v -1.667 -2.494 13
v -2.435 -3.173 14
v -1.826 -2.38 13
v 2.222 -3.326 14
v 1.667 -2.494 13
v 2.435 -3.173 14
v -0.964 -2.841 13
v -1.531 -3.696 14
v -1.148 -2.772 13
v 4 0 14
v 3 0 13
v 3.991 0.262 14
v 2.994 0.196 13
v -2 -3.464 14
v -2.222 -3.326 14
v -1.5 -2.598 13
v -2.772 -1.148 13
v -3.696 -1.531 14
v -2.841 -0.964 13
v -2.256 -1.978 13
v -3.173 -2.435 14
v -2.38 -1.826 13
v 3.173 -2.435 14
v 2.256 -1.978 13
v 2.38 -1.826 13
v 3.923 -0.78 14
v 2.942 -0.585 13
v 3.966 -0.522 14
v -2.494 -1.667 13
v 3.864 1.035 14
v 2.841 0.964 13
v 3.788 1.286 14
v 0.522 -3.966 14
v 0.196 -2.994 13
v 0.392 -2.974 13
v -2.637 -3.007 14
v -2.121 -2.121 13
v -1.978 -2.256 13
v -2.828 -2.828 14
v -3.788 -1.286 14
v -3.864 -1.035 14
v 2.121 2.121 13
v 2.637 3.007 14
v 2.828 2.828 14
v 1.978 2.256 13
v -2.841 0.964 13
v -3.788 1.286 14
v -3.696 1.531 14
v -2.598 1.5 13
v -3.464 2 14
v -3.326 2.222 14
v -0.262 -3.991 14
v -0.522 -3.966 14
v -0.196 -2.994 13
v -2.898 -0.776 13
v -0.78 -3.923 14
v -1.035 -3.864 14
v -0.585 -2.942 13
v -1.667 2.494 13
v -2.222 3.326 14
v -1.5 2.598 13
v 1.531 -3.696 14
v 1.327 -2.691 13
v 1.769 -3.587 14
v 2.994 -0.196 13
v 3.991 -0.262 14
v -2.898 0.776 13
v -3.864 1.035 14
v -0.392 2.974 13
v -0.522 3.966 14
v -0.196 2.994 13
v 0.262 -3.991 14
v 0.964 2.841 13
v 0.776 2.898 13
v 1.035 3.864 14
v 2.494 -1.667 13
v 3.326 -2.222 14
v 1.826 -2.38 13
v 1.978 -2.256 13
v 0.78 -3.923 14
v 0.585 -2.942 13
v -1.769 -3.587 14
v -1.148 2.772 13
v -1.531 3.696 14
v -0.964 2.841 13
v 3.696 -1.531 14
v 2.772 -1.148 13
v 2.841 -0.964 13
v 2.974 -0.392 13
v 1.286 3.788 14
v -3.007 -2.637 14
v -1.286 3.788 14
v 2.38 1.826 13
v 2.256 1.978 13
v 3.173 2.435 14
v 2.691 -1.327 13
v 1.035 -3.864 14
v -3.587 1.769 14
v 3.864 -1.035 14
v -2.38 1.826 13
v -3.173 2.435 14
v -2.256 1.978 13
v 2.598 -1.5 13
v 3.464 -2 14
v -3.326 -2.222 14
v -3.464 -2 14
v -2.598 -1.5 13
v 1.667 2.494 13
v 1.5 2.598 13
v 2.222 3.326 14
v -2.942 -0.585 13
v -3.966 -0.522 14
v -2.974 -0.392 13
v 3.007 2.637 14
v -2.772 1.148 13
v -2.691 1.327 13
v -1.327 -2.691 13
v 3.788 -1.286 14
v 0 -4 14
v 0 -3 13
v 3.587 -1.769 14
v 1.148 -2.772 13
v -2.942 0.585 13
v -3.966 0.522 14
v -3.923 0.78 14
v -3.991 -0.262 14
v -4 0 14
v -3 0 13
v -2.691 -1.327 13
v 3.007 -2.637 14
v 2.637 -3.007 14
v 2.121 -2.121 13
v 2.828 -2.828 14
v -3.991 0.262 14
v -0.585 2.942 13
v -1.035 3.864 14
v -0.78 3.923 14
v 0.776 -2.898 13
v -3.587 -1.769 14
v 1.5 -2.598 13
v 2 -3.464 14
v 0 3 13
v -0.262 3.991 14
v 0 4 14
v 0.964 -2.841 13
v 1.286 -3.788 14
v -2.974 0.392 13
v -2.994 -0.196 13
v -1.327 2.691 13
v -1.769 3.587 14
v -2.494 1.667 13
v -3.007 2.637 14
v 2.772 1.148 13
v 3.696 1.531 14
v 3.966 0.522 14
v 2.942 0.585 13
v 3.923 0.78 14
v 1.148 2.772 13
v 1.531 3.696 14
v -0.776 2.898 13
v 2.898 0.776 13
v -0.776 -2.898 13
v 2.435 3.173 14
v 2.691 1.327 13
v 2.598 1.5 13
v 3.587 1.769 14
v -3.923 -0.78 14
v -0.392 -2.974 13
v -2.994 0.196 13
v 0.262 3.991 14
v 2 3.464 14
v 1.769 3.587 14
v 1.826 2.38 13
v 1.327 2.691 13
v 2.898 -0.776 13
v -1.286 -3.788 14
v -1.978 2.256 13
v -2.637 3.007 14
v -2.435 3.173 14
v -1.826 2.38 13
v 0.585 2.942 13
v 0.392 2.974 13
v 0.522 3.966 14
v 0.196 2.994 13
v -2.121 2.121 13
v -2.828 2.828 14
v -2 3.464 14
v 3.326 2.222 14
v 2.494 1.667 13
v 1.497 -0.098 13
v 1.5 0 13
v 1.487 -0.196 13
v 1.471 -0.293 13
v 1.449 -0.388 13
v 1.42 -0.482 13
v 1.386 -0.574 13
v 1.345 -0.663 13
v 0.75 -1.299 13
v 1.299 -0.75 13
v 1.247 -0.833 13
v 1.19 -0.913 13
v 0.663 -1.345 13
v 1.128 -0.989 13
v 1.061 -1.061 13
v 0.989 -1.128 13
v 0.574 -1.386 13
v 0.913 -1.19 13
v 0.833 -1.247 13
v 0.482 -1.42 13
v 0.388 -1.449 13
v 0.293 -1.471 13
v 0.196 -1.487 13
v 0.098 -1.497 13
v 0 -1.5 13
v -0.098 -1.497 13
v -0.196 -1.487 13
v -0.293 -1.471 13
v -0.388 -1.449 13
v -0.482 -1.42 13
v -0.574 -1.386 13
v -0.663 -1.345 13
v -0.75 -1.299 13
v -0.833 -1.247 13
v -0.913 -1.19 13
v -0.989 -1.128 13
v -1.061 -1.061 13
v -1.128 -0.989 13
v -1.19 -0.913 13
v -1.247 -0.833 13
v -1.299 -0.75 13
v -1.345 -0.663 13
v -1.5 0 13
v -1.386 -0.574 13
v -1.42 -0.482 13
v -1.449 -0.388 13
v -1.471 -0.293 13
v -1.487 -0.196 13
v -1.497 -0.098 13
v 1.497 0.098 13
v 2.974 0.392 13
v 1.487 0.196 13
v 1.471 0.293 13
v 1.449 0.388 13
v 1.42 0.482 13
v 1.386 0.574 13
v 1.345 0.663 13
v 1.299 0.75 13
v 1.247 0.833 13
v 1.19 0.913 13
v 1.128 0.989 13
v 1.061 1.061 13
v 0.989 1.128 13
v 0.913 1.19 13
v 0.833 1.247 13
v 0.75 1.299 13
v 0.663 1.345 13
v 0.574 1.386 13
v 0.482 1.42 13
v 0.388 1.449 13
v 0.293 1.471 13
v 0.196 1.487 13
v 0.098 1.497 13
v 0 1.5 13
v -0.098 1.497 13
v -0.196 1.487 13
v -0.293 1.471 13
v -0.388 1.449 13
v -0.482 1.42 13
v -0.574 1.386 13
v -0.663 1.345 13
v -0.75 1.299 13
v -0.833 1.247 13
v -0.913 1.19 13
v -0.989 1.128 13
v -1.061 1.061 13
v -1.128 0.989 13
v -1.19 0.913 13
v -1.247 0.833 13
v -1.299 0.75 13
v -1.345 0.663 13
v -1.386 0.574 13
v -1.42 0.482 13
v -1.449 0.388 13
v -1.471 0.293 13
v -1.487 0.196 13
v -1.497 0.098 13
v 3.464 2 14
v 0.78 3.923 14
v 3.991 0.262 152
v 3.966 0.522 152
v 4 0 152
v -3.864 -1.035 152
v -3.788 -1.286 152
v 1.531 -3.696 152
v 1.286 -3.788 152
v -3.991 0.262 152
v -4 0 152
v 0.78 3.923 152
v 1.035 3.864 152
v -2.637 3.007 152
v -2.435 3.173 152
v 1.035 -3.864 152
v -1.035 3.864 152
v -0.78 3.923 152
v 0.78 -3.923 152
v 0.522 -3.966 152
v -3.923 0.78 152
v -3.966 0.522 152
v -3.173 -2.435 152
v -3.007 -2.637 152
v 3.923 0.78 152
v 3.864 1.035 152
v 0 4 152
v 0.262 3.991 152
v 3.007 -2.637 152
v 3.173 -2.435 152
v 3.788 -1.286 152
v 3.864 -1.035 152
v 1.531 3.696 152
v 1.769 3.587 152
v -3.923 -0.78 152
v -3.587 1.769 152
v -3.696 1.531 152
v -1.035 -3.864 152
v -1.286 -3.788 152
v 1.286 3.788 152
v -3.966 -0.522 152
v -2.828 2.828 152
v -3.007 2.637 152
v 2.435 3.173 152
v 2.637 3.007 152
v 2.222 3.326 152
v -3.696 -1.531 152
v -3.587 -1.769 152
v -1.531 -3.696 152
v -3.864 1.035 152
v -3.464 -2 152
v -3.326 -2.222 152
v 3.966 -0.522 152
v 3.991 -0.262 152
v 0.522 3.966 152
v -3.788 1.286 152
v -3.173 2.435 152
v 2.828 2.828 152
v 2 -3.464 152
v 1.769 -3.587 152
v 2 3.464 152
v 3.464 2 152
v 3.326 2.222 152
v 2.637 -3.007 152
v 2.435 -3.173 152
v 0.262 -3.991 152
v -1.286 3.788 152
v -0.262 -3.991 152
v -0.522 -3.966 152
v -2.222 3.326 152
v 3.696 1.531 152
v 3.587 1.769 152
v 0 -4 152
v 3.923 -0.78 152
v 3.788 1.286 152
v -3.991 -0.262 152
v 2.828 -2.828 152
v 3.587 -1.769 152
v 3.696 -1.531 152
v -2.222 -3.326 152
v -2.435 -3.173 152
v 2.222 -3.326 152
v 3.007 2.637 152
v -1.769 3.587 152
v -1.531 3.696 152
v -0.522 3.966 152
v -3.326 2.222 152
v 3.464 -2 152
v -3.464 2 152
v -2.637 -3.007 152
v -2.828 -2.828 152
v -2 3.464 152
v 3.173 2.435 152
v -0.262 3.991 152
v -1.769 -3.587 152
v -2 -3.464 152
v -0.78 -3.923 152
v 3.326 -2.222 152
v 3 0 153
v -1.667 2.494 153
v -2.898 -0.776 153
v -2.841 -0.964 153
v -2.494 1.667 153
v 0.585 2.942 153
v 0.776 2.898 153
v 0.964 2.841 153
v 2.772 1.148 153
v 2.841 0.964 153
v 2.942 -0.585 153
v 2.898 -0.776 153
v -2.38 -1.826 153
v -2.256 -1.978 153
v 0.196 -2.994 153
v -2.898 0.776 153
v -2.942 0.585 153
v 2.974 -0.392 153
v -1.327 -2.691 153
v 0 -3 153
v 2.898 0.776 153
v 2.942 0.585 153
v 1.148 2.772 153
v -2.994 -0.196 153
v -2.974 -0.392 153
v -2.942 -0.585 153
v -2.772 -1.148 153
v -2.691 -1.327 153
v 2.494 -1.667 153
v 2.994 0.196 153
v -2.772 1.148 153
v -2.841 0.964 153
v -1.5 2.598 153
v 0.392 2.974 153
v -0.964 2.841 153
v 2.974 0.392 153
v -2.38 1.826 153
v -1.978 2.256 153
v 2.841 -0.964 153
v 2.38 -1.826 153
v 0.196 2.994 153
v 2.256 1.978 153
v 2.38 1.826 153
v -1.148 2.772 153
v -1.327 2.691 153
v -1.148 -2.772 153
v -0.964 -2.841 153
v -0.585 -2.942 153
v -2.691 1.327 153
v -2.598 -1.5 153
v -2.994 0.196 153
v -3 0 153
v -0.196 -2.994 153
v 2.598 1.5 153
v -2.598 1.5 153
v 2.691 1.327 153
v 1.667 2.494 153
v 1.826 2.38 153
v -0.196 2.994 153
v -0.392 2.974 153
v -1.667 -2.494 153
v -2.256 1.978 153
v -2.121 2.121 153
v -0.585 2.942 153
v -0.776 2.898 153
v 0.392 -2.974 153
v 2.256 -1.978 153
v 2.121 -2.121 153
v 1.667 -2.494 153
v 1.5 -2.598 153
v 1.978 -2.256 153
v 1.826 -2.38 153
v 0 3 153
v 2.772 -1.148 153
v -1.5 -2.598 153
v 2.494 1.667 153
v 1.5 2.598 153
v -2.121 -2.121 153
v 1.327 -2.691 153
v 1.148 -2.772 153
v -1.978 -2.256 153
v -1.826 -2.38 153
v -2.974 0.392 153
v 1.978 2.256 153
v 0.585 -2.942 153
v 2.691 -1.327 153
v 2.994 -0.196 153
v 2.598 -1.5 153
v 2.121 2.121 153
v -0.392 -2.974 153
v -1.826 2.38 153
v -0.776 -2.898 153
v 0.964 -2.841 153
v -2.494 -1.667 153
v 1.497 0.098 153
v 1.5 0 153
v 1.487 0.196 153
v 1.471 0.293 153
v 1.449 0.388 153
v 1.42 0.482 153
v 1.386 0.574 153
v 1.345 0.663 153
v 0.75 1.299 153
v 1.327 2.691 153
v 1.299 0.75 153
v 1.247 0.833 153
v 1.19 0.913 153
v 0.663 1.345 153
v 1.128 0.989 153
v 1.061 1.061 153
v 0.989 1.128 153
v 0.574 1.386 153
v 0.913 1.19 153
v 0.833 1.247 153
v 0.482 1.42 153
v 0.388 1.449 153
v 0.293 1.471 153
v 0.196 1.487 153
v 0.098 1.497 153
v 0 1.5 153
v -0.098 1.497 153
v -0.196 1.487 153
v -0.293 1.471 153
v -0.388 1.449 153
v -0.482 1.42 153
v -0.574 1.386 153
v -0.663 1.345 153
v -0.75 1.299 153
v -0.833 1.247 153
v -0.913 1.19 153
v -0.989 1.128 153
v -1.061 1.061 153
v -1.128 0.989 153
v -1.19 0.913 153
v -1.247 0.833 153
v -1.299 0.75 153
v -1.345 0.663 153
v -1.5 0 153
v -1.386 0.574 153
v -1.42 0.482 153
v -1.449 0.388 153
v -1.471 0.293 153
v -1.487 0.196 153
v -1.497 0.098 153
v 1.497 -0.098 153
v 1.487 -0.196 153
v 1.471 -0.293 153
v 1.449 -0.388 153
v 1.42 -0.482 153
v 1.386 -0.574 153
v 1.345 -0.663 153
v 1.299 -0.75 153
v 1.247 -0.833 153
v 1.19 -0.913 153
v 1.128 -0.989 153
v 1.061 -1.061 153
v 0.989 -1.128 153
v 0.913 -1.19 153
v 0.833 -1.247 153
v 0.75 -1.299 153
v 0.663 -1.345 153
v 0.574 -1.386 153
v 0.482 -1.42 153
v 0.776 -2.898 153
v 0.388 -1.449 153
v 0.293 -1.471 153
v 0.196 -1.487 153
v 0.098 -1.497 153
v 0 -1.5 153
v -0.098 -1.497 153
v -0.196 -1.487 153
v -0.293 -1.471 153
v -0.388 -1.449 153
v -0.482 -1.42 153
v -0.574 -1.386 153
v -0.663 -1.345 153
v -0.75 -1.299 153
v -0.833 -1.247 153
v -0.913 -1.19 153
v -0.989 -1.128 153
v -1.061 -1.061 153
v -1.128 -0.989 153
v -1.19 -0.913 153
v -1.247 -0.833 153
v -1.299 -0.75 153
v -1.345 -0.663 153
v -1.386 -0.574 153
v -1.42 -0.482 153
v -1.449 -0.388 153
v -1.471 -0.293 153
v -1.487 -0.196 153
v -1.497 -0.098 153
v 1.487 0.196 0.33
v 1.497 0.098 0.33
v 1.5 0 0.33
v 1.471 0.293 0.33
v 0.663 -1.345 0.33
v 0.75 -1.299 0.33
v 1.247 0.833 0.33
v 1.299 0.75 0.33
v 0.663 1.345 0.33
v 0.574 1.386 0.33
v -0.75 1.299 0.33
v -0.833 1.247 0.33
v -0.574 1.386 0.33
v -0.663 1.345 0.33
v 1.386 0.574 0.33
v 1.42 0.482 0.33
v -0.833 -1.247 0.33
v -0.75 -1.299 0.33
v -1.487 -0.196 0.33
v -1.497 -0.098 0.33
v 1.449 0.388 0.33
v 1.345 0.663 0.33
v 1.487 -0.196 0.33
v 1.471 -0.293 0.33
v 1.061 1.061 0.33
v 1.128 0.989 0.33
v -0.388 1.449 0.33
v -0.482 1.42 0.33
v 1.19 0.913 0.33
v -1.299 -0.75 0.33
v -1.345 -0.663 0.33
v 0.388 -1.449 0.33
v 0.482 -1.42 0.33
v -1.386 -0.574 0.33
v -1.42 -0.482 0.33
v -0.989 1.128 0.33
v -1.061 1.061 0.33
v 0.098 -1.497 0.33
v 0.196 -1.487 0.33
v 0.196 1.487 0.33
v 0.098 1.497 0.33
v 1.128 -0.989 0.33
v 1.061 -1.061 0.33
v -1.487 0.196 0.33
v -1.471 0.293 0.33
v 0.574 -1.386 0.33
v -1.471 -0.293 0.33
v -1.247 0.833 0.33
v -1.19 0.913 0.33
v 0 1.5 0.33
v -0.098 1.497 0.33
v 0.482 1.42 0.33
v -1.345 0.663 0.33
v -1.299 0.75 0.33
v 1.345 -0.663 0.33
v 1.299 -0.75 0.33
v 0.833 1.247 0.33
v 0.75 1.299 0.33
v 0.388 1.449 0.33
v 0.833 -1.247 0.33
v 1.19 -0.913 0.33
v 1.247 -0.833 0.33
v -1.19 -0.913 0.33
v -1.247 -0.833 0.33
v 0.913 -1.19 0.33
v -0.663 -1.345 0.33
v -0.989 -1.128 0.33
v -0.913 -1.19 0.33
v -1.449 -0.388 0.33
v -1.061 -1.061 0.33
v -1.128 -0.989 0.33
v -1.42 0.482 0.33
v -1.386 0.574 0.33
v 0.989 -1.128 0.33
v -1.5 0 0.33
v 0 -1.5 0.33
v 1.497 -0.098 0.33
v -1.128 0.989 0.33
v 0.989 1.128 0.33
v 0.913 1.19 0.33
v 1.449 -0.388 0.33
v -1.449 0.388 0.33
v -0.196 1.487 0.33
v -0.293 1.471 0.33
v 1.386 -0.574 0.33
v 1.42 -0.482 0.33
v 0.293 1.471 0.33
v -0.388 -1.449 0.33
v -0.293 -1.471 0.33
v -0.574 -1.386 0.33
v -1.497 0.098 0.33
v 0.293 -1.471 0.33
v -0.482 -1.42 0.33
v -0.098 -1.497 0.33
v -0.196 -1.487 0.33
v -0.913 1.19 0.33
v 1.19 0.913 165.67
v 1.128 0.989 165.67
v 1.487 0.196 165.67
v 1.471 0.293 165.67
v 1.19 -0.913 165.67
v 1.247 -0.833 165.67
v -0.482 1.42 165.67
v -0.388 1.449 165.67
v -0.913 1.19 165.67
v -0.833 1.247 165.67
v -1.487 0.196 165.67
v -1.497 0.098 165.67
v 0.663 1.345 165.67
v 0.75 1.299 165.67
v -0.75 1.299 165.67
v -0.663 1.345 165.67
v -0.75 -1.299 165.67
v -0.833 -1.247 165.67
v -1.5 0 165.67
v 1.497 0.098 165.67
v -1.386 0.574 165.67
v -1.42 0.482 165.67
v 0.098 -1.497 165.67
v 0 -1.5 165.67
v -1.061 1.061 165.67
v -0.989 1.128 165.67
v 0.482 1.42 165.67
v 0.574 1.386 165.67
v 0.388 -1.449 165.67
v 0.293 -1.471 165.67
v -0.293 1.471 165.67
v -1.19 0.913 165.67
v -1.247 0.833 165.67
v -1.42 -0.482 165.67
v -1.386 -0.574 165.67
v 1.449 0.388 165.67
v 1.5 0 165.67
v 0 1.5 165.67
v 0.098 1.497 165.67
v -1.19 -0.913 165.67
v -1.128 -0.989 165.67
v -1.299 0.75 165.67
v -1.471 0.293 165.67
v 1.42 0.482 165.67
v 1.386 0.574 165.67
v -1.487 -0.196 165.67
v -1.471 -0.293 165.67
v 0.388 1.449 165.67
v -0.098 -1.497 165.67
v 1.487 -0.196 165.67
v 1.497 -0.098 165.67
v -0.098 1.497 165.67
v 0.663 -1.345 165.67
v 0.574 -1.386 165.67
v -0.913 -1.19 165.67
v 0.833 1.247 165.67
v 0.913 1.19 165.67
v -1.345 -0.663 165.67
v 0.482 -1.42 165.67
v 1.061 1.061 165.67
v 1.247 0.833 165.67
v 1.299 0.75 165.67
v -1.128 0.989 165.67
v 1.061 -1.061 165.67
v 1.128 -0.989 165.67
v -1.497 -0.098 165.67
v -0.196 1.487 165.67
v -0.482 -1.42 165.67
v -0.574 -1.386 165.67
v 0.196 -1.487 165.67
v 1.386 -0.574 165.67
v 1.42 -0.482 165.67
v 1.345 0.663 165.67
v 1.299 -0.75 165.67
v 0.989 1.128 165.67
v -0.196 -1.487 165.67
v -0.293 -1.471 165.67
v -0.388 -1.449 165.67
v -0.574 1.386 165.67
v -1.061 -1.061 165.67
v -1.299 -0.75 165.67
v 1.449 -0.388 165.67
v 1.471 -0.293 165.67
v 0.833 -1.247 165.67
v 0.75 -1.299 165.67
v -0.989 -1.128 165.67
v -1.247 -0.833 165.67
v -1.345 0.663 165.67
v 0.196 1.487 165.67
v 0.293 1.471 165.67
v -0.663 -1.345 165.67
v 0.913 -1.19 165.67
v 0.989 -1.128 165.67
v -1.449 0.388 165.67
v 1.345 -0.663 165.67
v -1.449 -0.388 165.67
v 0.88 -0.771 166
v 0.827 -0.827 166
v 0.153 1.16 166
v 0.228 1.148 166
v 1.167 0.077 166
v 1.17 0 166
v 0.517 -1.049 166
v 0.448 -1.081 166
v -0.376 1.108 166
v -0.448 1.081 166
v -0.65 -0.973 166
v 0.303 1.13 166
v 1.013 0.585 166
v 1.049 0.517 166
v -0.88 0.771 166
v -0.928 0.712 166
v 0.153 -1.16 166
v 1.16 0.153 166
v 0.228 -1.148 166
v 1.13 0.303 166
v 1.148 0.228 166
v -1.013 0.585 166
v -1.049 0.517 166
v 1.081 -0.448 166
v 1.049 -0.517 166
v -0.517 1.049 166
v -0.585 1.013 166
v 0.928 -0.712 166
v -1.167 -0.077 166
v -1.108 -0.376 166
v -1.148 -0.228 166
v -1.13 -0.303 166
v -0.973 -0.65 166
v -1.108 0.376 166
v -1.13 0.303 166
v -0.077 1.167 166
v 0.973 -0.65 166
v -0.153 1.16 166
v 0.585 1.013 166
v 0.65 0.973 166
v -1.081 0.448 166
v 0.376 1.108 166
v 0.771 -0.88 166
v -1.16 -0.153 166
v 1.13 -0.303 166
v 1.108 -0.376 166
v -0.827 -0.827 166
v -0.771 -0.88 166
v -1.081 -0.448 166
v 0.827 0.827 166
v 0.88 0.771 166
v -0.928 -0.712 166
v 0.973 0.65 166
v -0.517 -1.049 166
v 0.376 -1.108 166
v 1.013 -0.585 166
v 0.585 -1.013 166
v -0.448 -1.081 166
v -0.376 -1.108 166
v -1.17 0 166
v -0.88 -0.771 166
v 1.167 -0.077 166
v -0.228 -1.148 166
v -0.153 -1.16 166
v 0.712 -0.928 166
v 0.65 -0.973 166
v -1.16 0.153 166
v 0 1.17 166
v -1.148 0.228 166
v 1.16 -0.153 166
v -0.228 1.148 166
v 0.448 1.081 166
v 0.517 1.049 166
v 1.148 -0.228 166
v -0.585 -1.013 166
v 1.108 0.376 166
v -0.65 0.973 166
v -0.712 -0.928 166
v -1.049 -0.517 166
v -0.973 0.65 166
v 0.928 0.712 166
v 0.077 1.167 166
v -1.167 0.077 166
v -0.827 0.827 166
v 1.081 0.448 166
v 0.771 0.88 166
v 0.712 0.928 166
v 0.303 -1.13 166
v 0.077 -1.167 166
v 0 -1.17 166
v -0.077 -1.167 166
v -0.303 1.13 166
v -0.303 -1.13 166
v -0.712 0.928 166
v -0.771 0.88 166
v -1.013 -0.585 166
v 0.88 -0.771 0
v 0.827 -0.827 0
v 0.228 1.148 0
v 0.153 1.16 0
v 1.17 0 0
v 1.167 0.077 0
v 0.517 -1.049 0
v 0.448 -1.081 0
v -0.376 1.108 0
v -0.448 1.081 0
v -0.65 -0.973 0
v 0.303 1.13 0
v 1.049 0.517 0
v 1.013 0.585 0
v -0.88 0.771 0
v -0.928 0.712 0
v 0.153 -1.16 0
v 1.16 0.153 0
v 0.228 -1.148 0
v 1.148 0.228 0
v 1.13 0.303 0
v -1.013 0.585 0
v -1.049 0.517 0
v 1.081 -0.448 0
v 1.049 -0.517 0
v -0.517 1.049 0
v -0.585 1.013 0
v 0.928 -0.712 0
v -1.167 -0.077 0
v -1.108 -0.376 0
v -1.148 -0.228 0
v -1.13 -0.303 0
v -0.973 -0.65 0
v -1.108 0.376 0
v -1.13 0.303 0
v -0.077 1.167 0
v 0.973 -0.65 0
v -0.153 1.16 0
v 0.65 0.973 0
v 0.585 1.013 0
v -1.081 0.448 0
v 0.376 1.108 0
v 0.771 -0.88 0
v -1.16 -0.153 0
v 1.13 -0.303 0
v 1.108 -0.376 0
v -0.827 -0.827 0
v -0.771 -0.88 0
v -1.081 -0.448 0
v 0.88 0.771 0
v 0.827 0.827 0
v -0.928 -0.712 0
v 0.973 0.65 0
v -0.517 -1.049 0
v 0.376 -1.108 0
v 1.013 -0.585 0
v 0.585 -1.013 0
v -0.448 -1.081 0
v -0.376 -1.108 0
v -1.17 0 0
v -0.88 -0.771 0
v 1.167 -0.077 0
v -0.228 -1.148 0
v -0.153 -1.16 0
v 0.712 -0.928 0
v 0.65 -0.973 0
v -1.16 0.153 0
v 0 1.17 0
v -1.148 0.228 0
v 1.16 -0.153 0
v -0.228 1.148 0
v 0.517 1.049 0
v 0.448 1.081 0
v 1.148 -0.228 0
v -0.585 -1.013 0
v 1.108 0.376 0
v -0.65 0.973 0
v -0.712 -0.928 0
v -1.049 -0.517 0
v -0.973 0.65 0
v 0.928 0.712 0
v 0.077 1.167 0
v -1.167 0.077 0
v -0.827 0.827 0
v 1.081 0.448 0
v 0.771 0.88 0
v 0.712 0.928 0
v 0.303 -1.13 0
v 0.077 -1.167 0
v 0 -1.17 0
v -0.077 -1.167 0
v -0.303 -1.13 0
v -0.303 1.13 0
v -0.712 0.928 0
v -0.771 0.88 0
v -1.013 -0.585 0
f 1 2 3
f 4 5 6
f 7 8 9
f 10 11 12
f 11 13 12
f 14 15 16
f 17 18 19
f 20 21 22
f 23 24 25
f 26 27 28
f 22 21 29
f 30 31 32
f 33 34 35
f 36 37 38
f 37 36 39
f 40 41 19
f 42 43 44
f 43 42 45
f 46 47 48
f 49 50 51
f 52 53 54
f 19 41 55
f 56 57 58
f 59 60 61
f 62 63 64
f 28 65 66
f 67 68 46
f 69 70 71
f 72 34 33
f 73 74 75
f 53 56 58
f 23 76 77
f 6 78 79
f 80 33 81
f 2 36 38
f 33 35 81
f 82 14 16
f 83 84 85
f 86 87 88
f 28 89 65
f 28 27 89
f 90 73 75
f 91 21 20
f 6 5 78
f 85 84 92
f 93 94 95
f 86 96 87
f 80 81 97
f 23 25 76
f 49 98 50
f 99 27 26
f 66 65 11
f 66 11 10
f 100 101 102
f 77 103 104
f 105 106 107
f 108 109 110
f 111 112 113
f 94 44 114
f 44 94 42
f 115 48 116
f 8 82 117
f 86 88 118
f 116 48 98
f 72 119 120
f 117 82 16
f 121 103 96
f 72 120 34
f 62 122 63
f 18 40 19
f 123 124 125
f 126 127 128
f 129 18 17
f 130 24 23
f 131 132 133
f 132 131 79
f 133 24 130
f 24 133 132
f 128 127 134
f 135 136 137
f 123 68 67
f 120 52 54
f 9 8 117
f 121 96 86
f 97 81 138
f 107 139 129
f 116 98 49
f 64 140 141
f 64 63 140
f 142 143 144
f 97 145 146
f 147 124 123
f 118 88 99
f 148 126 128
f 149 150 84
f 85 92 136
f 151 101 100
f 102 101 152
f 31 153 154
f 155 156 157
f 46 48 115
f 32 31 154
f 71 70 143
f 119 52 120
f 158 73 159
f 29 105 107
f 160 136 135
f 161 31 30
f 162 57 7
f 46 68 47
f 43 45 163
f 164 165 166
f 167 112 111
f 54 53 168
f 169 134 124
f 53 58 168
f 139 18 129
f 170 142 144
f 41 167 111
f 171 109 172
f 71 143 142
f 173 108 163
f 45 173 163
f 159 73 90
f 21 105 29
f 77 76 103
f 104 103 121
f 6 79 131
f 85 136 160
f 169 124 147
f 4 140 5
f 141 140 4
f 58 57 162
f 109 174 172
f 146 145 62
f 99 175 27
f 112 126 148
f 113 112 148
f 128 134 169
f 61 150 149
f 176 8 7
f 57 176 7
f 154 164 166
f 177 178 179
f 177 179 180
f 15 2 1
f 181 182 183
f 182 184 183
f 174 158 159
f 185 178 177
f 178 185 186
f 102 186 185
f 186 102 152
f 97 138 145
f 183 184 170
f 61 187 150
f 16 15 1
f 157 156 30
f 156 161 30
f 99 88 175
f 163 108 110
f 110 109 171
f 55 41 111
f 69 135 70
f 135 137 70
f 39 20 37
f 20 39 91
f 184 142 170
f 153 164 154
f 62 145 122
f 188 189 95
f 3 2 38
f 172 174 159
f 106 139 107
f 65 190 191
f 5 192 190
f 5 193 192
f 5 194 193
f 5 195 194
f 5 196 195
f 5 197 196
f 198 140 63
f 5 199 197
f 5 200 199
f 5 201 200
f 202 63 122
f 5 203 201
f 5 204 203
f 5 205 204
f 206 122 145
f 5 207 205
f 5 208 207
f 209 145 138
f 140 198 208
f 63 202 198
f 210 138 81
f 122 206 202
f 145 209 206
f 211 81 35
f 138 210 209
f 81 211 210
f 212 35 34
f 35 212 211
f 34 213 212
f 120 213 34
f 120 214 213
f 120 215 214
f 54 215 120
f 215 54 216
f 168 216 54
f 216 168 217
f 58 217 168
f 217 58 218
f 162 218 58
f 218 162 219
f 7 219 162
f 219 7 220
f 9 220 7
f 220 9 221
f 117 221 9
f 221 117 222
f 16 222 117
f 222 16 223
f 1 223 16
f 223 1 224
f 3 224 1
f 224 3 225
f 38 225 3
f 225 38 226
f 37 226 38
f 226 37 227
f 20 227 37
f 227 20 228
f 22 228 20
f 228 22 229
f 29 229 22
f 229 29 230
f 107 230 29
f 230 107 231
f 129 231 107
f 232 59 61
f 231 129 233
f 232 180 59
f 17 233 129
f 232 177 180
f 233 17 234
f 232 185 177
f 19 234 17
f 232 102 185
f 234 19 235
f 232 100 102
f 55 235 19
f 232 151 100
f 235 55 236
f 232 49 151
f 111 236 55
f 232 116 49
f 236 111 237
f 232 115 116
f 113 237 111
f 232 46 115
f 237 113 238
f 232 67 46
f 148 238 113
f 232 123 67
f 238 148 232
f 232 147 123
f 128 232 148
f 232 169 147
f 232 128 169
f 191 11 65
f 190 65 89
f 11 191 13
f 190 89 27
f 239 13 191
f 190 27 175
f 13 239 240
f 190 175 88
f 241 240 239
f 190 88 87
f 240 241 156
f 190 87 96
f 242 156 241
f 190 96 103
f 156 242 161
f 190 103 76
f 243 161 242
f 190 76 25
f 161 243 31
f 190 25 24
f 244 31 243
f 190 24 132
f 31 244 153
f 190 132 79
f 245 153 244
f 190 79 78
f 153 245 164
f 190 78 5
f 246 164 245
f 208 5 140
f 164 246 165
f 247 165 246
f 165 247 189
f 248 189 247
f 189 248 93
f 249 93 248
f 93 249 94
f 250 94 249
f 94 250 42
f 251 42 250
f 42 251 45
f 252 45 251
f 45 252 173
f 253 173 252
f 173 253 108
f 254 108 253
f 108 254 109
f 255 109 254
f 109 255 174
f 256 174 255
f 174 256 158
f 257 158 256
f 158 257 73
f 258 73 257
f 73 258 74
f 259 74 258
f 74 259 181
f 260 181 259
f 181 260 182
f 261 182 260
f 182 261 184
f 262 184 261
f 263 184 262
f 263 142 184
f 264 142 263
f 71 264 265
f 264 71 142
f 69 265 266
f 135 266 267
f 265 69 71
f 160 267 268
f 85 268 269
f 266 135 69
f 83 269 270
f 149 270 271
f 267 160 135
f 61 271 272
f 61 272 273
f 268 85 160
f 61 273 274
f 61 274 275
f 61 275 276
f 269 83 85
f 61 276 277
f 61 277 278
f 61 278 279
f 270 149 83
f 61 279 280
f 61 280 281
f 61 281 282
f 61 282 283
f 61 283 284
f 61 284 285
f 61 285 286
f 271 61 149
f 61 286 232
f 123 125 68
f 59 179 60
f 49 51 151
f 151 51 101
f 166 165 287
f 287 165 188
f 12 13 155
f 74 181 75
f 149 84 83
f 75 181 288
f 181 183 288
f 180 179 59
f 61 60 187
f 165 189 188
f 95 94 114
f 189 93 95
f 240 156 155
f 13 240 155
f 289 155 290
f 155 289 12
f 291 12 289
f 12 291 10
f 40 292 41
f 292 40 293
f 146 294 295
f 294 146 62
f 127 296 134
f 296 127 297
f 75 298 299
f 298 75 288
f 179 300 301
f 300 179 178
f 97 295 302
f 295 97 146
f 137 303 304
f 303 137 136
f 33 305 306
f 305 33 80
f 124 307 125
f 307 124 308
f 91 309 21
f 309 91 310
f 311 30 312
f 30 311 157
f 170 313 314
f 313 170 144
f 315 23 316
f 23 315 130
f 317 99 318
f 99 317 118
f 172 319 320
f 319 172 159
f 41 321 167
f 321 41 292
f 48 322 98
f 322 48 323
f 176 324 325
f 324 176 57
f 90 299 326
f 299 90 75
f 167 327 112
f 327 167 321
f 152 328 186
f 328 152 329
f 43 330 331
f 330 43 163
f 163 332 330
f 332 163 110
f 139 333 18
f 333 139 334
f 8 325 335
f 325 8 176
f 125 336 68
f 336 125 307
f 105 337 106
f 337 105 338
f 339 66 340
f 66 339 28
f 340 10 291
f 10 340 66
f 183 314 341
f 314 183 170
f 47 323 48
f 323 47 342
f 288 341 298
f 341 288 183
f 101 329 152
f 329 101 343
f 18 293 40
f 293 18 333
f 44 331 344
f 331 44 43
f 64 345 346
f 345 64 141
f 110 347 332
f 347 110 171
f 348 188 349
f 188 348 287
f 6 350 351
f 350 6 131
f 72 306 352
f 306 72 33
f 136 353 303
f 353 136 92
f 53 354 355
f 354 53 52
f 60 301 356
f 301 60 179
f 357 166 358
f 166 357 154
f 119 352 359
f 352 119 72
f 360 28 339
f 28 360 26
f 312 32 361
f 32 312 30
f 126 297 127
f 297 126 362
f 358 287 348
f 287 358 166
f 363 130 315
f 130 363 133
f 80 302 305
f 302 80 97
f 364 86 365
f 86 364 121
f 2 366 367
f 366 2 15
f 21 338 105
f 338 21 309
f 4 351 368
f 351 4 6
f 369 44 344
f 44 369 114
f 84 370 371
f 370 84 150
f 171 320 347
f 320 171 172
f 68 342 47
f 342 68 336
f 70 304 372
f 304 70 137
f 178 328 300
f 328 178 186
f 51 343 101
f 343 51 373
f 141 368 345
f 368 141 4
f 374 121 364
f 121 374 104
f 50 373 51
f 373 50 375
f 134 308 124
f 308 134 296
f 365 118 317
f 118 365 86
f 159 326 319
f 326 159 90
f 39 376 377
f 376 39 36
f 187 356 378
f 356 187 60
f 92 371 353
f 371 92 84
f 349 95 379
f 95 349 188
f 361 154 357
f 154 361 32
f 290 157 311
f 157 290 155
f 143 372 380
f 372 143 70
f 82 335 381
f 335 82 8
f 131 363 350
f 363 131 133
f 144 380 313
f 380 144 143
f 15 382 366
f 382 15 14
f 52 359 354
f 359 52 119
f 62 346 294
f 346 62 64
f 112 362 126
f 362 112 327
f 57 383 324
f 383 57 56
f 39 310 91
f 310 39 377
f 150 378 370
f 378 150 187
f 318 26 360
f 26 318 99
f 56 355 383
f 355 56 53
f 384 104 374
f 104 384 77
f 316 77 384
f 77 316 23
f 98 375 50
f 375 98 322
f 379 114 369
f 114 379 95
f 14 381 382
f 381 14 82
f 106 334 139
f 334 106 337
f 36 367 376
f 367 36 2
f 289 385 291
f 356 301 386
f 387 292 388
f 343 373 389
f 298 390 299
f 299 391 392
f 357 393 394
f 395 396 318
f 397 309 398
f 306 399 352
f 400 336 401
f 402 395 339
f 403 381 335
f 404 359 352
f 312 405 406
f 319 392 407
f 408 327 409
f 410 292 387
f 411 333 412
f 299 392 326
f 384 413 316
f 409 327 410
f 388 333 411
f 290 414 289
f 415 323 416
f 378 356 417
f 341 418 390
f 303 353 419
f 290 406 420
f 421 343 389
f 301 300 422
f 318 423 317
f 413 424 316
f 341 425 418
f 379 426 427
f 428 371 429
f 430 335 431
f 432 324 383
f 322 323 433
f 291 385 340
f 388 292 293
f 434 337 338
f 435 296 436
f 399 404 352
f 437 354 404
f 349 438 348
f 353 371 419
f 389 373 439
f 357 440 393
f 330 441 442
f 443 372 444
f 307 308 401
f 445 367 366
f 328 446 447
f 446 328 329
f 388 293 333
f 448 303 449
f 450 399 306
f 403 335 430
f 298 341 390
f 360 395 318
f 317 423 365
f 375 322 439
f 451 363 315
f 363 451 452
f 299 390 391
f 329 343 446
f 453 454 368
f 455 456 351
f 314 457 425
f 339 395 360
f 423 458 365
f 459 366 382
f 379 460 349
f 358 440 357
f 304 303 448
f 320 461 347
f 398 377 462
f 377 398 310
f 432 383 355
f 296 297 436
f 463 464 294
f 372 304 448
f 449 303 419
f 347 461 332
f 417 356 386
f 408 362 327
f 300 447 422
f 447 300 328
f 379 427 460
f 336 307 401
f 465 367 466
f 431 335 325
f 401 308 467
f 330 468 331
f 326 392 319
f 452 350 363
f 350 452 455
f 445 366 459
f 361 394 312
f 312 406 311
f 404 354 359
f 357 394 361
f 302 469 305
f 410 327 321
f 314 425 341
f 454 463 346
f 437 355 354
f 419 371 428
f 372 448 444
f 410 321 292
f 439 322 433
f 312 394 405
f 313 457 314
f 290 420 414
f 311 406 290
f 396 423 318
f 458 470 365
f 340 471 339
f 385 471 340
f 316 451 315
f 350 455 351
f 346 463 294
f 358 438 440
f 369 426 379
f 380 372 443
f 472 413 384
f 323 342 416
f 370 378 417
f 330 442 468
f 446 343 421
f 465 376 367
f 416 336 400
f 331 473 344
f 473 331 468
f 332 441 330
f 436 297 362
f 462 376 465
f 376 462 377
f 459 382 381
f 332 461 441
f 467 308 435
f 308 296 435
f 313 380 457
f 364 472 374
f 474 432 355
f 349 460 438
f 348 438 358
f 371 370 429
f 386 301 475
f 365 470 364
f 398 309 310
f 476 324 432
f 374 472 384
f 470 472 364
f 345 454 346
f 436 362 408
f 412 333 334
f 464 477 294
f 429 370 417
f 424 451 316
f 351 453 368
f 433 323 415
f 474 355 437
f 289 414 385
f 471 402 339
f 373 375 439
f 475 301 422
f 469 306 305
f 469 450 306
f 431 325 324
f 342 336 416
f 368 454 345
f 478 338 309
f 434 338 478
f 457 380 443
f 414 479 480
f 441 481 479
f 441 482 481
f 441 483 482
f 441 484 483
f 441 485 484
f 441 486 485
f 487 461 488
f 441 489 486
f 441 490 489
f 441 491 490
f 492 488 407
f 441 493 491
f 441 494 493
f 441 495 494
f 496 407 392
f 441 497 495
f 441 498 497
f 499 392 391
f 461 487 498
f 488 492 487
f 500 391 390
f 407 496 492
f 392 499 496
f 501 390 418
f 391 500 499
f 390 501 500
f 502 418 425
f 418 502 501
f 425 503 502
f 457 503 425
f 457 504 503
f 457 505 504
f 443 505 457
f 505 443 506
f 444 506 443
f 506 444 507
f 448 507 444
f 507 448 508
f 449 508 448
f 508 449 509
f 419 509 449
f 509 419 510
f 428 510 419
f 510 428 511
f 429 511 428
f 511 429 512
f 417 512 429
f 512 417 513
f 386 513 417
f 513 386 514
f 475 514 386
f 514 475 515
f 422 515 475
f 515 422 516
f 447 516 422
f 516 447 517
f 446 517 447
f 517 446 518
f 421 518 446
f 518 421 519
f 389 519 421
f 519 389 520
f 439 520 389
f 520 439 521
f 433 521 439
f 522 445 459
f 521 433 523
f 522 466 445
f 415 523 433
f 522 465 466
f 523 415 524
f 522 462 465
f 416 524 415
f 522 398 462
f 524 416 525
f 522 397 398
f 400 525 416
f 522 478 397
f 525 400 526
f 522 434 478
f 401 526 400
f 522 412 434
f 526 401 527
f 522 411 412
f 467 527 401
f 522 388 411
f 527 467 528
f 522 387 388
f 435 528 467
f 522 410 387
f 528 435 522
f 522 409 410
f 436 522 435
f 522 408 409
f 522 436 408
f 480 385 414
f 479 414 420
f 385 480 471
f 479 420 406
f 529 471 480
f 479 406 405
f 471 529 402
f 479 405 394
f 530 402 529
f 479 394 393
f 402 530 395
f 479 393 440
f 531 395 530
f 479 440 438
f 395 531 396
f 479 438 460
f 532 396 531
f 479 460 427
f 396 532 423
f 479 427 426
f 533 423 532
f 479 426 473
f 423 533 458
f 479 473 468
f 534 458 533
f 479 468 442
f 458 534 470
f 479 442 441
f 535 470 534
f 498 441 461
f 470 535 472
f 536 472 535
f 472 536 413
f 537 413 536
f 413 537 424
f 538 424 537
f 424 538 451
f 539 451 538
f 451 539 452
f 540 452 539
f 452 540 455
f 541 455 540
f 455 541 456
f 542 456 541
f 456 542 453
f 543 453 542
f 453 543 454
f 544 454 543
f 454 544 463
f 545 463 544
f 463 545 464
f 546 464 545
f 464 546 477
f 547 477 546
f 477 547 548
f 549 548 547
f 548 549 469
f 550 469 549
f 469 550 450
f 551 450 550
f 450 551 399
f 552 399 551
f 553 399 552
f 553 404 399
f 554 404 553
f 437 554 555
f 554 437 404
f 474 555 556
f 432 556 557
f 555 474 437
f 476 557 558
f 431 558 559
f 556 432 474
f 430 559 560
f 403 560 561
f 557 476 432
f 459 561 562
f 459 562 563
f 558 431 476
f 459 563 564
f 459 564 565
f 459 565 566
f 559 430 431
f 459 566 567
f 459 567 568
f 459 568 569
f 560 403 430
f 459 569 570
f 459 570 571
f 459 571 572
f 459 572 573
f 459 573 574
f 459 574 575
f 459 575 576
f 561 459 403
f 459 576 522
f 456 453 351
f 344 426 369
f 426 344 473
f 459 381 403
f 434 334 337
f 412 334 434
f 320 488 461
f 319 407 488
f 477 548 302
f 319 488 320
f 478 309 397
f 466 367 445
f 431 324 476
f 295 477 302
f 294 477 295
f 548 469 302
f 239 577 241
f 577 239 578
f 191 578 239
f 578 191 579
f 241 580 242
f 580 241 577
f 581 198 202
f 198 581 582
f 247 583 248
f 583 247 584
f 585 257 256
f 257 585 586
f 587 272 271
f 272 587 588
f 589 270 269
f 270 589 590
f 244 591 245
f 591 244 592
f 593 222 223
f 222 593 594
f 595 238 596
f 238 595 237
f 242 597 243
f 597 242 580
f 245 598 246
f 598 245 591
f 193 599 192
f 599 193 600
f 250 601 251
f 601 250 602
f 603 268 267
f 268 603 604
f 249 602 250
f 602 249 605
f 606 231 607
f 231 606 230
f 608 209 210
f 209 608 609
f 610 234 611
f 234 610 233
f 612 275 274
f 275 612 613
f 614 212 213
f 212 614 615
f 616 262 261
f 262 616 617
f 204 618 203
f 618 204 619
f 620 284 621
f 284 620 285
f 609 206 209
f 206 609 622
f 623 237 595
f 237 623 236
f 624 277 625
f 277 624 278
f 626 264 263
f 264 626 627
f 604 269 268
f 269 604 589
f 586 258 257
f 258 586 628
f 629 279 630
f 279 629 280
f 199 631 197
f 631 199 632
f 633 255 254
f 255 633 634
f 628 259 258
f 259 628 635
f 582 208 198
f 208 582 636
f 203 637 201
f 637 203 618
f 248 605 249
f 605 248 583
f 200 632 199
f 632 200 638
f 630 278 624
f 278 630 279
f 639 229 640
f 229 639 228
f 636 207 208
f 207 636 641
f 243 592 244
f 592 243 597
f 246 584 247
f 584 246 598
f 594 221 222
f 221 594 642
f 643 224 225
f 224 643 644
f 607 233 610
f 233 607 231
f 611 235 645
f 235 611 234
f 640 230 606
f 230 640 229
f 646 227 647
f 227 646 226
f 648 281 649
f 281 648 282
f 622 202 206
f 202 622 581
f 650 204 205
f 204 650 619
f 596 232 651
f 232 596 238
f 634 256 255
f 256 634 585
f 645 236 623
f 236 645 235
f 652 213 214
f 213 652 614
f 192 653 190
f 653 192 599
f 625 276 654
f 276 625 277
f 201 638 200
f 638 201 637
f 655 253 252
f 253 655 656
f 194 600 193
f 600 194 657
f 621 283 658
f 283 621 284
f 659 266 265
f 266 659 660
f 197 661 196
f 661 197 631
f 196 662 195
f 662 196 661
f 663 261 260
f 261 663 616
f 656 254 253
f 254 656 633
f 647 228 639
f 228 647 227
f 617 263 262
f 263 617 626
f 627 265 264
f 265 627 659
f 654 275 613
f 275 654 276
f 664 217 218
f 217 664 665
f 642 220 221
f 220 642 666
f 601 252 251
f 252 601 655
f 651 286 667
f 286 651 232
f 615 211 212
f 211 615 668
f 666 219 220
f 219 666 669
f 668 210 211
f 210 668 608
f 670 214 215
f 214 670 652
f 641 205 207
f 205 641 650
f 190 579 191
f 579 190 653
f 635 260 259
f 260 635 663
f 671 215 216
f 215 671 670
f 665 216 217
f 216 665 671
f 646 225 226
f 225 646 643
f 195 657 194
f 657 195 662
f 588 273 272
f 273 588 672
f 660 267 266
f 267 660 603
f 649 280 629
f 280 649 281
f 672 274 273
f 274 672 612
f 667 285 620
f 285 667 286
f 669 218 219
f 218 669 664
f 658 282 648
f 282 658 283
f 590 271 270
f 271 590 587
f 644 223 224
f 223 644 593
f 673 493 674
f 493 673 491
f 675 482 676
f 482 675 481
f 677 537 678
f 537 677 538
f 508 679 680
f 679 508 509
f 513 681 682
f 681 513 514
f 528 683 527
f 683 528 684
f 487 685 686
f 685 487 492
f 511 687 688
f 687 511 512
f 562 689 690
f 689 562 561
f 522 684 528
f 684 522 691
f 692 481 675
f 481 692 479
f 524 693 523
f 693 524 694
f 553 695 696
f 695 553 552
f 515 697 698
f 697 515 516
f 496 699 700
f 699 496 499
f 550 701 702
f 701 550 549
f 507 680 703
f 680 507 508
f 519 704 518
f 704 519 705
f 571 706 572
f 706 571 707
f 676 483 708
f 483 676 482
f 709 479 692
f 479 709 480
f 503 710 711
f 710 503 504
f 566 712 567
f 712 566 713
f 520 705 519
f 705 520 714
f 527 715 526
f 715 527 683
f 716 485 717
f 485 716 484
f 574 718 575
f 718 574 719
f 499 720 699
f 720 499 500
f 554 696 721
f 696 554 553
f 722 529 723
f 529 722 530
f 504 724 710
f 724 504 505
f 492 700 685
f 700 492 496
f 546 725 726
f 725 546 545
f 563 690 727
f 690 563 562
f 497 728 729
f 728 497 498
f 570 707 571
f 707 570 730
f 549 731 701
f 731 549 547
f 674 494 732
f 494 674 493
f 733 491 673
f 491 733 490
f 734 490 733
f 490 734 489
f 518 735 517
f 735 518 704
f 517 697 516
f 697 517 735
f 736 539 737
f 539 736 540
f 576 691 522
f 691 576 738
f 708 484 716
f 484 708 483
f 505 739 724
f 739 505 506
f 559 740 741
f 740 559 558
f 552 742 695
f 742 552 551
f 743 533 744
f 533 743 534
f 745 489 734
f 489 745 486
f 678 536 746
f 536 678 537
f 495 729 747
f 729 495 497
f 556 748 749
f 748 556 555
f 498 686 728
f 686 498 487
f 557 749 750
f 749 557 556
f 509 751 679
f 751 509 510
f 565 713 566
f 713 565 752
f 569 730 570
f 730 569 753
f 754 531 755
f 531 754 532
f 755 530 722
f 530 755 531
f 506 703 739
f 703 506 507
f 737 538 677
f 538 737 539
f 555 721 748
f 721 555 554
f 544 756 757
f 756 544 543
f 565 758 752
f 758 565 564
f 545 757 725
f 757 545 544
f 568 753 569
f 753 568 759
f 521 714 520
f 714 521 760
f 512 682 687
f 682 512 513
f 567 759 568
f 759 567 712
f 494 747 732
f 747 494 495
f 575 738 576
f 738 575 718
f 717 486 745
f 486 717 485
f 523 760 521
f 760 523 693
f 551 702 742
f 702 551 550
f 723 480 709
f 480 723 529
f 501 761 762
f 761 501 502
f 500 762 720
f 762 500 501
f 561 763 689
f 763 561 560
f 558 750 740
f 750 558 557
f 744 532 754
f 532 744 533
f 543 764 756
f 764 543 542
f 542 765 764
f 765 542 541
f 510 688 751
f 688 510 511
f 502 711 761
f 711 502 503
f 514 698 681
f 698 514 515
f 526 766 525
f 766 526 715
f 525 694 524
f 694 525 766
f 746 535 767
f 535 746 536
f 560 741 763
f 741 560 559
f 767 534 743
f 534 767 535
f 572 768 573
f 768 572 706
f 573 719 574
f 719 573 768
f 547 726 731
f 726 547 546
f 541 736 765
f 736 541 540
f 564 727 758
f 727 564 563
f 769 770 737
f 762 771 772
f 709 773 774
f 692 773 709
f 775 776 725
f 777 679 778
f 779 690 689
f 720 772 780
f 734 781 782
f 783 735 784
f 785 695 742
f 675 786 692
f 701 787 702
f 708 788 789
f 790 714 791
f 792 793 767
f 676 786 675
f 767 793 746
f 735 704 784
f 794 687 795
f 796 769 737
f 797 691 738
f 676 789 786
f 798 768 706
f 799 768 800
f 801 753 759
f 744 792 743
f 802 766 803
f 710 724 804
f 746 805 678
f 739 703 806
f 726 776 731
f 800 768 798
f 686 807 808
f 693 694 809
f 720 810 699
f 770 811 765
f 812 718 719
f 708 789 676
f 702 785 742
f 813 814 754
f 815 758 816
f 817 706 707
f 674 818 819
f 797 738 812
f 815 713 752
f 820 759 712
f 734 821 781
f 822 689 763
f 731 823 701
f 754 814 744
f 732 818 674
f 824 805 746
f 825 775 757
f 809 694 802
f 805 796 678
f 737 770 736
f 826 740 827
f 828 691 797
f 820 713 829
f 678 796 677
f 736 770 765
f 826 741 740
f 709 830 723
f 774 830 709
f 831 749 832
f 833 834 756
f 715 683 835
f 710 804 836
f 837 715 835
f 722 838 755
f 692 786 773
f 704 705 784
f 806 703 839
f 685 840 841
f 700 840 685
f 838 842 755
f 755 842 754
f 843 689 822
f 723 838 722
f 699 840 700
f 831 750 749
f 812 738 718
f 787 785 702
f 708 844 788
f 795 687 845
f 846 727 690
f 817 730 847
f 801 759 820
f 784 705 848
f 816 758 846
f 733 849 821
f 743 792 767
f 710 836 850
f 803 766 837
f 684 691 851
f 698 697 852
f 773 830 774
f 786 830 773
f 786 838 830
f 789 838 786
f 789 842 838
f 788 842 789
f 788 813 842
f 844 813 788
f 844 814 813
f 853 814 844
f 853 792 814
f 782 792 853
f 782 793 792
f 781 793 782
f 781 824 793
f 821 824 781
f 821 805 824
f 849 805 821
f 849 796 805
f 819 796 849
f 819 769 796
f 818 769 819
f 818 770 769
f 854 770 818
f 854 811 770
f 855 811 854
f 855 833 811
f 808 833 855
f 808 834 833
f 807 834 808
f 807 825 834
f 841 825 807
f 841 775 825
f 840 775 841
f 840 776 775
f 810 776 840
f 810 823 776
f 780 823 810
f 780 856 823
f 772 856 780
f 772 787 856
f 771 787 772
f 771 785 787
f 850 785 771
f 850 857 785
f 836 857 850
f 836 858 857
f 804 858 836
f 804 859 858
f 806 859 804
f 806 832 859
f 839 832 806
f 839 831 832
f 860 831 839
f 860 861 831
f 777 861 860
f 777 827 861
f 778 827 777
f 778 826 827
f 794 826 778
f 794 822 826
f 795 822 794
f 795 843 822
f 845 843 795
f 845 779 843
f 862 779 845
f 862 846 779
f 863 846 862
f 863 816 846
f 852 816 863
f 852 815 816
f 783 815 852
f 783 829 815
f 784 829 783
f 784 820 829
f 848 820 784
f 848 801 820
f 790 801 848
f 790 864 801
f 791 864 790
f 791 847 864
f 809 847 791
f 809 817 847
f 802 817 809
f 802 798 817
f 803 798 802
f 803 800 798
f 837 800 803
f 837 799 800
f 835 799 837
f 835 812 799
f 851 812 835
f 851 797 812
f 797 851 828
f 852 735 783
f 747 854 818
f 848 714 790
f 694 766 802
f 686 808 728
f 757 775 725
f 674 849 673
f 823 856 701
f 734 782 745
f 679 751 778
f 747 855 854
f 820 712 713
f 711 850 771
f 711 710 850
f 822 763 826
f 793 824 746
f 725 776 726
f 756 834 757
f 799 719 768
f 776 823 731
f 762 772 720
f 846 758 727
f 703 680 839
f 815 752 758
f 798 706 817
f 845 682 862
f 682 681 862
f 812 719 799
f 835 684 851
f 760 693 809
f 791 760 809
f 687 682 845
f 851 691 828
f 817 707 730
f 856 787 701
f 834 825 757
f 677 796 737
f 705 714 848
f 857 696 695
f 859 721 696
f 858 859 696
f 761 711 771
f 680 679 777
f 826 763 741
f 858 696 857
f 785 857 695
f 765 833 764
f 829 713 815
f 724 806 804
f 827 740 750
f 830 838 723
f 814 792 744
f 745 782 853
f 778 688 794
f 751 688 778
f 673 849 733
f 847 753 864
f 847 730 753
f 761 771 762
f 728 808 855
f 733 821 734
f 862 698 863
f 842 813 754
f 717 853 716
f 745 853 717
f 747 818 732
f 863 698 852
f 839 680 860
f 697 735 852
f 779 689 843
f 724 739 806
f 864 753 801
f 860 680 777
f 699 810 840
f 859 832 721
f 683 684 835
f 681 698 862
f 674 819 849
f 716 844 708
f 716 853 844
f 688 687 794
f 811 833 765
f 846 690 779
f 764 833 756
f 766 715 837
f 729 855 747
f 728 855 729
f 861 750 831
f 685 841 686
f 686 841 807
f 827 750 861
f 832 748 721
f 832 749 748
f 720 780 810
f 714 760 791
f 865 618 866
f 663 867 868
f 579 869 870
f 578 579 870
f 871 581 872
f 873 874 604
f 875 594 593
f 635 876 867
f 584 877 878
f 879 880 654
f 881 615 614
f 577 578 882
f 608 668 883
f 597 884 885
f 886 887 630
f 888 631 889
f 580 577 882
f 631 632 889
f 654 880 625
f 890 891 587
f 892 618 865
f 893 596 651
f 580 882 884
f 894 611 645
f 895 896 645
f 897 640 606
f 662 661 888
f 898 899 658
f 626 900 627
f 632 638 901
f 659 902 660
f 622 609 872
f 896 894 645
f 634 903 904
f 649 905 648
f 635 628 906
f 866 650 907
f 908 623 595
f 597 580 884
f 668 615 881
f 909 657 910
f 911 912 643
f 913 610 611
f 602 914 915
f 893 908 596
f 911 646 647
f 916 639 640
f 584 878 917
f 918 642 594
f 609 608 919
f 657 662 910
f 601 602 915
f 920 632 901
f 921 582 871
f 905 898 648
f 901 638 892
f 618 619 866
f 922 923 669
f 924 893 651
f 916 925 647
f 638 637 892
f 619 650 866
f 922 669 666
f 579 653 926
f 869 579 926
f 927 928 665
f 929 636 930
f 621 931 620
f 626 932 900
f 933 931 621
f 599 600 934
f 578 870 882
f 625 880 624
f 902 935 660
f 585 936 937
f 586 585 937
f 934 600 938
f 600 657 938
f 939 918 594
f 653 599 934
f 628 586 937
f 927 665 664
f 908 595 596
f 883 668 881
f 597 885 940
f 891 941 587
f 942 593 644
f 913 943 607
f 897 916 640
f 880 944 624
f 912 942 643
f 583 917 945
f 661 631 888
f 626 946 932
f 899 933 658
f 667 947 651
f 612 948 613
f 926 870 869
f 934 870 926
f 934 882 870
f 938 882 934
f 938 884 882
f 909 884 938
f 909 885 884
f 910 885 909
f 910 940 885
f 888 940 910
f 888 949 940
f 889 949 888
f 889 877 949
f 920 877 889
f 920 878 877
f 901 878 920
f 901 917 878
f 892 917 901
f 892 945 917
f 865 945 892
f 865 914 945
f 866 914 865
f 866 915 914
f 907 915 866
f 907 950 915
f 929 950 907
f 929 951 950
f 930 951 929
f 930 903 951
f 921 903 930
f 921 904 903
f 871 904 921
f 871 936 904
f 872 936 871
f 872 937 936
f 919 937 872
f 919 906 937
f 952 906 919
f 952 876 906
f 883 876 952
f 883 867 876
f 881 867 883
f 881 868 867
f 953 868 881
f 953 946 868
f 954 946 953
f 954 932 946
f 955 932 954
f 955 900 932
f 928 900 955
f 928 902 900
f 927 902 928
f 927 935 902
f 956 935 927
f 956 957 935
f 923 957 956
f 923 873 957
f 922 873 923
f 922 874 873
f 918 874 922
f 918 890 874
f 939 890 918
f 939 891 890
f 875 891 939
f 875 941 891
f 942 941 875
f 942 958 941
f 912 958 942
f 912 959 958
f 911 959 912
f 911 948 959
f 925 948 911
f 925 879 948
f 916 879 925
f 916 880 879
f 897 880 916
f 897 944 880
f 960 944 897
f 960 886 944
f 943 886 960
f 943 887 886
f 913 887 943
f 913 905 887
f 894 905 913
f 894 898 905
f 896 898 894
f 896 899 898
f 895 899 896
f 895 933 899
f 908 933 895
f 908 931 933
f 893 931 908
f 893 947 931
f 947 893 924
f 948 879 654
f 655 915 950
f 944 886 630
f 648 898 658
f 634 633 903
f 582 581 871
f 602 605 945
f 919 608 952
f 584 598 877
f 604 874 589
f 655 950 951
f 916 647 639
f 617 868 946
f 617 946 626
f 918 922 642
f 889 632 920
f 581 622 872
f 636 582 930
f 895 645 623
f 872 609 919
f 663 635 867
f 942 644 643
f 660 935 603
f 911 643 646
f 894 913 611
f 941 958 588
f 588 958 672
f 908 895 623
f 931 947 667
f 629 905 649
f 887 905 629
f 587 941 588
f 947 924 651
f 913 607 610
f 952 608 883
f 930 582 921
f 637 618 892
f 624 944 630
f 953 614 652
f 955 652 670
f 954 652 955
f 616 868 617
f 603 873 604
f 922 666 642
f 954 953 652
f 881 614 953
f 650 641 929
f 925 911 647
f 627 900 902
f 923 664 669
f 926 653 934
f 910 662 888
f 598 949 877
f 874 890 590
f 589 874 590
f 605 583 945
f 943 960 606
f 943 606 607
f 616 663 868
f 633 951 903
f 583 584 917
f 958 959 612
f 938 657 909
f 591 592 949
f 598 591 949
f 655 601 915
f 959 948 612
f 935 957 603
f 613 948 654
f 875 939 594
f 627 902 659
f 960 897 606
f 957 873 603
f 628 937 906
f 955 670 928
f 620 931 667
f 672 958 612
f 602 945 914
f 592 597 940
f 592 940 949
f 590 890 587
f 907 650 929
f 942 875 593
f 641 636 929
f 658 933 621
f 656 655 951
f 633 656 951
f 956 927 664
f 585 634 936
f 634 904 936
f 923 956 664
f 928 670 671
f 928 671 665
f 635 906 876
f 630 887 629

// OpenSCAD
// ============================================================
//  T104 - Kirby armature-lock pin (double-ended, symmetric)
//  Fat central BODY; each end steps down to a reduced TIP that
//  enters the armature cross-hole. Either end works.
//  Units: millimeters.
//  Built from a 20mm tip dowel friction-fit 7mm into a drilled end
//  of the body (13mm exposed) at each end - modeled that way so the
//  part views can show the body's drilled holes and the two dowels.
// ============================================================

// "3D"     -> colored solid           (export STL / 3MF)
// "Flat"   -> 2D side elevation        (export DXF / SVG)
// "Rod"    -> just the body, with the tip-dowel holes drilled
// "Dowels" -> just the two tip dowels
// Part View
view = "3D";   // ["3D", "Flat", "Rod", "Dowels"]

// - measurements (mm) -
body_dia  = 8.0;    // main rod OD
body_len  = 140.0;  // main rod length
tip_dia   = 3.0;    // reduced tip rod OD
tip_len   = 13.0;   // exposed tip length per end
tip_embed = 7.0;    // how far each tip dowel presses into the drilled body end (dowel = 13 + 7 = 20mm)
rim_cham  = 1.0;    // 45 deg chamfer on the body's OUTER rim at each end (1mm down the shaft)
end_cham  = 0.33;   // 45 deg lead-in chamfer at the very tip (.33mm; finds the hole)

// - render quality -
$fn = 96;

// ---- geometry modules --------------------------------------
// main body: full-dia rod, outer rim chamfered at both ends
module body() {
  cylinder(h = rim_cham, d1 = body_dia - 2 * rim_cham, d2 = body_dia);   // bottom rim
  translate([0, 0, rim_cham])
    cylinder(h = body_len - 2 * rim_cham, d = body_dia);                 // straight
  translate([0, 0, body_len - rim_cham])
    cylinder(h = rim_cham, d1 = body_dia, d2 = body_dia - 2 * rim_cham); // top rim
}

// the body with a tip-dowel hole drilled tip_embed deep into each end
module t104_body() {
  difference() {
    body();
    translate([0, 0, -1]) cylinder(h = tip_embed + 1, d = tip_dia);                    // bottom drill
    translate([0, 0, body_len - tip_embed]) cylinder(h = tip_embed + 1, d = tip_dia);  // top drill
  }
}

// one tip dowel: full length (tip_embed in the body + tip_len exposed);
// embedded end at z=0 (plain), exposed end at z=dowel_len (lead-in chamfer)
module dowel() {
  dl = tip_len + tip_embed;
  cylinder(h = dl - end_cham, d = tip_dia);                // straight rod
  if (end_cham > 0)                                        // lead-in at the exposed tip
    translate([0, 0, dl - end_cham])
      cylinder(h = end_cham, d1 = tip_dia, d2 = tip_dia - 2 * end_cham);
}

// the two dowels in their assembled positions (7mm into each end, 13mm proud)
module t104_dowels() {
  color("#333333")
    translate([0, 0, tip_len]) {
      translate([0, 0, body_len - tip_embed]) dowel();
      translate([0, 0, tip_embed]) mirror([0, 0, 1]) dowel();
    }
}

// positioned, colored 3D tool - standing upright on its bottom tip (z >= 0)
// (colors are preview only - STL carries no color; 3MF/AMF can)
module t104_3d() {
  translate([0, 0, tip_len]) color("#c0c0c0") t104_body();   // silver drilled body
  t104_dowels();                                             // dark tip dowels
}

// 2D FLAT elevation: lay the axis into the plane, then flatten to a silhouette
module t104_flat() {
  projection() rotate([0, 90, 0]) t104_3d();
}

// ---- output (flip 'view' above) ----------------------------
if (view == "3D")          t104_3d();
else if (view == "Flat")   t104_flat();
else if (view == "Rod")    translate([0, 0, tip_len]) color("#c0c0c0") t104_body();  // body with drilled ends
else if (view == "Dowels") t104_dowels();                                            // the two tip dowels

echo(str("Overall length = ", body_len + 2 * tip_len, " mm"));  // = 166
